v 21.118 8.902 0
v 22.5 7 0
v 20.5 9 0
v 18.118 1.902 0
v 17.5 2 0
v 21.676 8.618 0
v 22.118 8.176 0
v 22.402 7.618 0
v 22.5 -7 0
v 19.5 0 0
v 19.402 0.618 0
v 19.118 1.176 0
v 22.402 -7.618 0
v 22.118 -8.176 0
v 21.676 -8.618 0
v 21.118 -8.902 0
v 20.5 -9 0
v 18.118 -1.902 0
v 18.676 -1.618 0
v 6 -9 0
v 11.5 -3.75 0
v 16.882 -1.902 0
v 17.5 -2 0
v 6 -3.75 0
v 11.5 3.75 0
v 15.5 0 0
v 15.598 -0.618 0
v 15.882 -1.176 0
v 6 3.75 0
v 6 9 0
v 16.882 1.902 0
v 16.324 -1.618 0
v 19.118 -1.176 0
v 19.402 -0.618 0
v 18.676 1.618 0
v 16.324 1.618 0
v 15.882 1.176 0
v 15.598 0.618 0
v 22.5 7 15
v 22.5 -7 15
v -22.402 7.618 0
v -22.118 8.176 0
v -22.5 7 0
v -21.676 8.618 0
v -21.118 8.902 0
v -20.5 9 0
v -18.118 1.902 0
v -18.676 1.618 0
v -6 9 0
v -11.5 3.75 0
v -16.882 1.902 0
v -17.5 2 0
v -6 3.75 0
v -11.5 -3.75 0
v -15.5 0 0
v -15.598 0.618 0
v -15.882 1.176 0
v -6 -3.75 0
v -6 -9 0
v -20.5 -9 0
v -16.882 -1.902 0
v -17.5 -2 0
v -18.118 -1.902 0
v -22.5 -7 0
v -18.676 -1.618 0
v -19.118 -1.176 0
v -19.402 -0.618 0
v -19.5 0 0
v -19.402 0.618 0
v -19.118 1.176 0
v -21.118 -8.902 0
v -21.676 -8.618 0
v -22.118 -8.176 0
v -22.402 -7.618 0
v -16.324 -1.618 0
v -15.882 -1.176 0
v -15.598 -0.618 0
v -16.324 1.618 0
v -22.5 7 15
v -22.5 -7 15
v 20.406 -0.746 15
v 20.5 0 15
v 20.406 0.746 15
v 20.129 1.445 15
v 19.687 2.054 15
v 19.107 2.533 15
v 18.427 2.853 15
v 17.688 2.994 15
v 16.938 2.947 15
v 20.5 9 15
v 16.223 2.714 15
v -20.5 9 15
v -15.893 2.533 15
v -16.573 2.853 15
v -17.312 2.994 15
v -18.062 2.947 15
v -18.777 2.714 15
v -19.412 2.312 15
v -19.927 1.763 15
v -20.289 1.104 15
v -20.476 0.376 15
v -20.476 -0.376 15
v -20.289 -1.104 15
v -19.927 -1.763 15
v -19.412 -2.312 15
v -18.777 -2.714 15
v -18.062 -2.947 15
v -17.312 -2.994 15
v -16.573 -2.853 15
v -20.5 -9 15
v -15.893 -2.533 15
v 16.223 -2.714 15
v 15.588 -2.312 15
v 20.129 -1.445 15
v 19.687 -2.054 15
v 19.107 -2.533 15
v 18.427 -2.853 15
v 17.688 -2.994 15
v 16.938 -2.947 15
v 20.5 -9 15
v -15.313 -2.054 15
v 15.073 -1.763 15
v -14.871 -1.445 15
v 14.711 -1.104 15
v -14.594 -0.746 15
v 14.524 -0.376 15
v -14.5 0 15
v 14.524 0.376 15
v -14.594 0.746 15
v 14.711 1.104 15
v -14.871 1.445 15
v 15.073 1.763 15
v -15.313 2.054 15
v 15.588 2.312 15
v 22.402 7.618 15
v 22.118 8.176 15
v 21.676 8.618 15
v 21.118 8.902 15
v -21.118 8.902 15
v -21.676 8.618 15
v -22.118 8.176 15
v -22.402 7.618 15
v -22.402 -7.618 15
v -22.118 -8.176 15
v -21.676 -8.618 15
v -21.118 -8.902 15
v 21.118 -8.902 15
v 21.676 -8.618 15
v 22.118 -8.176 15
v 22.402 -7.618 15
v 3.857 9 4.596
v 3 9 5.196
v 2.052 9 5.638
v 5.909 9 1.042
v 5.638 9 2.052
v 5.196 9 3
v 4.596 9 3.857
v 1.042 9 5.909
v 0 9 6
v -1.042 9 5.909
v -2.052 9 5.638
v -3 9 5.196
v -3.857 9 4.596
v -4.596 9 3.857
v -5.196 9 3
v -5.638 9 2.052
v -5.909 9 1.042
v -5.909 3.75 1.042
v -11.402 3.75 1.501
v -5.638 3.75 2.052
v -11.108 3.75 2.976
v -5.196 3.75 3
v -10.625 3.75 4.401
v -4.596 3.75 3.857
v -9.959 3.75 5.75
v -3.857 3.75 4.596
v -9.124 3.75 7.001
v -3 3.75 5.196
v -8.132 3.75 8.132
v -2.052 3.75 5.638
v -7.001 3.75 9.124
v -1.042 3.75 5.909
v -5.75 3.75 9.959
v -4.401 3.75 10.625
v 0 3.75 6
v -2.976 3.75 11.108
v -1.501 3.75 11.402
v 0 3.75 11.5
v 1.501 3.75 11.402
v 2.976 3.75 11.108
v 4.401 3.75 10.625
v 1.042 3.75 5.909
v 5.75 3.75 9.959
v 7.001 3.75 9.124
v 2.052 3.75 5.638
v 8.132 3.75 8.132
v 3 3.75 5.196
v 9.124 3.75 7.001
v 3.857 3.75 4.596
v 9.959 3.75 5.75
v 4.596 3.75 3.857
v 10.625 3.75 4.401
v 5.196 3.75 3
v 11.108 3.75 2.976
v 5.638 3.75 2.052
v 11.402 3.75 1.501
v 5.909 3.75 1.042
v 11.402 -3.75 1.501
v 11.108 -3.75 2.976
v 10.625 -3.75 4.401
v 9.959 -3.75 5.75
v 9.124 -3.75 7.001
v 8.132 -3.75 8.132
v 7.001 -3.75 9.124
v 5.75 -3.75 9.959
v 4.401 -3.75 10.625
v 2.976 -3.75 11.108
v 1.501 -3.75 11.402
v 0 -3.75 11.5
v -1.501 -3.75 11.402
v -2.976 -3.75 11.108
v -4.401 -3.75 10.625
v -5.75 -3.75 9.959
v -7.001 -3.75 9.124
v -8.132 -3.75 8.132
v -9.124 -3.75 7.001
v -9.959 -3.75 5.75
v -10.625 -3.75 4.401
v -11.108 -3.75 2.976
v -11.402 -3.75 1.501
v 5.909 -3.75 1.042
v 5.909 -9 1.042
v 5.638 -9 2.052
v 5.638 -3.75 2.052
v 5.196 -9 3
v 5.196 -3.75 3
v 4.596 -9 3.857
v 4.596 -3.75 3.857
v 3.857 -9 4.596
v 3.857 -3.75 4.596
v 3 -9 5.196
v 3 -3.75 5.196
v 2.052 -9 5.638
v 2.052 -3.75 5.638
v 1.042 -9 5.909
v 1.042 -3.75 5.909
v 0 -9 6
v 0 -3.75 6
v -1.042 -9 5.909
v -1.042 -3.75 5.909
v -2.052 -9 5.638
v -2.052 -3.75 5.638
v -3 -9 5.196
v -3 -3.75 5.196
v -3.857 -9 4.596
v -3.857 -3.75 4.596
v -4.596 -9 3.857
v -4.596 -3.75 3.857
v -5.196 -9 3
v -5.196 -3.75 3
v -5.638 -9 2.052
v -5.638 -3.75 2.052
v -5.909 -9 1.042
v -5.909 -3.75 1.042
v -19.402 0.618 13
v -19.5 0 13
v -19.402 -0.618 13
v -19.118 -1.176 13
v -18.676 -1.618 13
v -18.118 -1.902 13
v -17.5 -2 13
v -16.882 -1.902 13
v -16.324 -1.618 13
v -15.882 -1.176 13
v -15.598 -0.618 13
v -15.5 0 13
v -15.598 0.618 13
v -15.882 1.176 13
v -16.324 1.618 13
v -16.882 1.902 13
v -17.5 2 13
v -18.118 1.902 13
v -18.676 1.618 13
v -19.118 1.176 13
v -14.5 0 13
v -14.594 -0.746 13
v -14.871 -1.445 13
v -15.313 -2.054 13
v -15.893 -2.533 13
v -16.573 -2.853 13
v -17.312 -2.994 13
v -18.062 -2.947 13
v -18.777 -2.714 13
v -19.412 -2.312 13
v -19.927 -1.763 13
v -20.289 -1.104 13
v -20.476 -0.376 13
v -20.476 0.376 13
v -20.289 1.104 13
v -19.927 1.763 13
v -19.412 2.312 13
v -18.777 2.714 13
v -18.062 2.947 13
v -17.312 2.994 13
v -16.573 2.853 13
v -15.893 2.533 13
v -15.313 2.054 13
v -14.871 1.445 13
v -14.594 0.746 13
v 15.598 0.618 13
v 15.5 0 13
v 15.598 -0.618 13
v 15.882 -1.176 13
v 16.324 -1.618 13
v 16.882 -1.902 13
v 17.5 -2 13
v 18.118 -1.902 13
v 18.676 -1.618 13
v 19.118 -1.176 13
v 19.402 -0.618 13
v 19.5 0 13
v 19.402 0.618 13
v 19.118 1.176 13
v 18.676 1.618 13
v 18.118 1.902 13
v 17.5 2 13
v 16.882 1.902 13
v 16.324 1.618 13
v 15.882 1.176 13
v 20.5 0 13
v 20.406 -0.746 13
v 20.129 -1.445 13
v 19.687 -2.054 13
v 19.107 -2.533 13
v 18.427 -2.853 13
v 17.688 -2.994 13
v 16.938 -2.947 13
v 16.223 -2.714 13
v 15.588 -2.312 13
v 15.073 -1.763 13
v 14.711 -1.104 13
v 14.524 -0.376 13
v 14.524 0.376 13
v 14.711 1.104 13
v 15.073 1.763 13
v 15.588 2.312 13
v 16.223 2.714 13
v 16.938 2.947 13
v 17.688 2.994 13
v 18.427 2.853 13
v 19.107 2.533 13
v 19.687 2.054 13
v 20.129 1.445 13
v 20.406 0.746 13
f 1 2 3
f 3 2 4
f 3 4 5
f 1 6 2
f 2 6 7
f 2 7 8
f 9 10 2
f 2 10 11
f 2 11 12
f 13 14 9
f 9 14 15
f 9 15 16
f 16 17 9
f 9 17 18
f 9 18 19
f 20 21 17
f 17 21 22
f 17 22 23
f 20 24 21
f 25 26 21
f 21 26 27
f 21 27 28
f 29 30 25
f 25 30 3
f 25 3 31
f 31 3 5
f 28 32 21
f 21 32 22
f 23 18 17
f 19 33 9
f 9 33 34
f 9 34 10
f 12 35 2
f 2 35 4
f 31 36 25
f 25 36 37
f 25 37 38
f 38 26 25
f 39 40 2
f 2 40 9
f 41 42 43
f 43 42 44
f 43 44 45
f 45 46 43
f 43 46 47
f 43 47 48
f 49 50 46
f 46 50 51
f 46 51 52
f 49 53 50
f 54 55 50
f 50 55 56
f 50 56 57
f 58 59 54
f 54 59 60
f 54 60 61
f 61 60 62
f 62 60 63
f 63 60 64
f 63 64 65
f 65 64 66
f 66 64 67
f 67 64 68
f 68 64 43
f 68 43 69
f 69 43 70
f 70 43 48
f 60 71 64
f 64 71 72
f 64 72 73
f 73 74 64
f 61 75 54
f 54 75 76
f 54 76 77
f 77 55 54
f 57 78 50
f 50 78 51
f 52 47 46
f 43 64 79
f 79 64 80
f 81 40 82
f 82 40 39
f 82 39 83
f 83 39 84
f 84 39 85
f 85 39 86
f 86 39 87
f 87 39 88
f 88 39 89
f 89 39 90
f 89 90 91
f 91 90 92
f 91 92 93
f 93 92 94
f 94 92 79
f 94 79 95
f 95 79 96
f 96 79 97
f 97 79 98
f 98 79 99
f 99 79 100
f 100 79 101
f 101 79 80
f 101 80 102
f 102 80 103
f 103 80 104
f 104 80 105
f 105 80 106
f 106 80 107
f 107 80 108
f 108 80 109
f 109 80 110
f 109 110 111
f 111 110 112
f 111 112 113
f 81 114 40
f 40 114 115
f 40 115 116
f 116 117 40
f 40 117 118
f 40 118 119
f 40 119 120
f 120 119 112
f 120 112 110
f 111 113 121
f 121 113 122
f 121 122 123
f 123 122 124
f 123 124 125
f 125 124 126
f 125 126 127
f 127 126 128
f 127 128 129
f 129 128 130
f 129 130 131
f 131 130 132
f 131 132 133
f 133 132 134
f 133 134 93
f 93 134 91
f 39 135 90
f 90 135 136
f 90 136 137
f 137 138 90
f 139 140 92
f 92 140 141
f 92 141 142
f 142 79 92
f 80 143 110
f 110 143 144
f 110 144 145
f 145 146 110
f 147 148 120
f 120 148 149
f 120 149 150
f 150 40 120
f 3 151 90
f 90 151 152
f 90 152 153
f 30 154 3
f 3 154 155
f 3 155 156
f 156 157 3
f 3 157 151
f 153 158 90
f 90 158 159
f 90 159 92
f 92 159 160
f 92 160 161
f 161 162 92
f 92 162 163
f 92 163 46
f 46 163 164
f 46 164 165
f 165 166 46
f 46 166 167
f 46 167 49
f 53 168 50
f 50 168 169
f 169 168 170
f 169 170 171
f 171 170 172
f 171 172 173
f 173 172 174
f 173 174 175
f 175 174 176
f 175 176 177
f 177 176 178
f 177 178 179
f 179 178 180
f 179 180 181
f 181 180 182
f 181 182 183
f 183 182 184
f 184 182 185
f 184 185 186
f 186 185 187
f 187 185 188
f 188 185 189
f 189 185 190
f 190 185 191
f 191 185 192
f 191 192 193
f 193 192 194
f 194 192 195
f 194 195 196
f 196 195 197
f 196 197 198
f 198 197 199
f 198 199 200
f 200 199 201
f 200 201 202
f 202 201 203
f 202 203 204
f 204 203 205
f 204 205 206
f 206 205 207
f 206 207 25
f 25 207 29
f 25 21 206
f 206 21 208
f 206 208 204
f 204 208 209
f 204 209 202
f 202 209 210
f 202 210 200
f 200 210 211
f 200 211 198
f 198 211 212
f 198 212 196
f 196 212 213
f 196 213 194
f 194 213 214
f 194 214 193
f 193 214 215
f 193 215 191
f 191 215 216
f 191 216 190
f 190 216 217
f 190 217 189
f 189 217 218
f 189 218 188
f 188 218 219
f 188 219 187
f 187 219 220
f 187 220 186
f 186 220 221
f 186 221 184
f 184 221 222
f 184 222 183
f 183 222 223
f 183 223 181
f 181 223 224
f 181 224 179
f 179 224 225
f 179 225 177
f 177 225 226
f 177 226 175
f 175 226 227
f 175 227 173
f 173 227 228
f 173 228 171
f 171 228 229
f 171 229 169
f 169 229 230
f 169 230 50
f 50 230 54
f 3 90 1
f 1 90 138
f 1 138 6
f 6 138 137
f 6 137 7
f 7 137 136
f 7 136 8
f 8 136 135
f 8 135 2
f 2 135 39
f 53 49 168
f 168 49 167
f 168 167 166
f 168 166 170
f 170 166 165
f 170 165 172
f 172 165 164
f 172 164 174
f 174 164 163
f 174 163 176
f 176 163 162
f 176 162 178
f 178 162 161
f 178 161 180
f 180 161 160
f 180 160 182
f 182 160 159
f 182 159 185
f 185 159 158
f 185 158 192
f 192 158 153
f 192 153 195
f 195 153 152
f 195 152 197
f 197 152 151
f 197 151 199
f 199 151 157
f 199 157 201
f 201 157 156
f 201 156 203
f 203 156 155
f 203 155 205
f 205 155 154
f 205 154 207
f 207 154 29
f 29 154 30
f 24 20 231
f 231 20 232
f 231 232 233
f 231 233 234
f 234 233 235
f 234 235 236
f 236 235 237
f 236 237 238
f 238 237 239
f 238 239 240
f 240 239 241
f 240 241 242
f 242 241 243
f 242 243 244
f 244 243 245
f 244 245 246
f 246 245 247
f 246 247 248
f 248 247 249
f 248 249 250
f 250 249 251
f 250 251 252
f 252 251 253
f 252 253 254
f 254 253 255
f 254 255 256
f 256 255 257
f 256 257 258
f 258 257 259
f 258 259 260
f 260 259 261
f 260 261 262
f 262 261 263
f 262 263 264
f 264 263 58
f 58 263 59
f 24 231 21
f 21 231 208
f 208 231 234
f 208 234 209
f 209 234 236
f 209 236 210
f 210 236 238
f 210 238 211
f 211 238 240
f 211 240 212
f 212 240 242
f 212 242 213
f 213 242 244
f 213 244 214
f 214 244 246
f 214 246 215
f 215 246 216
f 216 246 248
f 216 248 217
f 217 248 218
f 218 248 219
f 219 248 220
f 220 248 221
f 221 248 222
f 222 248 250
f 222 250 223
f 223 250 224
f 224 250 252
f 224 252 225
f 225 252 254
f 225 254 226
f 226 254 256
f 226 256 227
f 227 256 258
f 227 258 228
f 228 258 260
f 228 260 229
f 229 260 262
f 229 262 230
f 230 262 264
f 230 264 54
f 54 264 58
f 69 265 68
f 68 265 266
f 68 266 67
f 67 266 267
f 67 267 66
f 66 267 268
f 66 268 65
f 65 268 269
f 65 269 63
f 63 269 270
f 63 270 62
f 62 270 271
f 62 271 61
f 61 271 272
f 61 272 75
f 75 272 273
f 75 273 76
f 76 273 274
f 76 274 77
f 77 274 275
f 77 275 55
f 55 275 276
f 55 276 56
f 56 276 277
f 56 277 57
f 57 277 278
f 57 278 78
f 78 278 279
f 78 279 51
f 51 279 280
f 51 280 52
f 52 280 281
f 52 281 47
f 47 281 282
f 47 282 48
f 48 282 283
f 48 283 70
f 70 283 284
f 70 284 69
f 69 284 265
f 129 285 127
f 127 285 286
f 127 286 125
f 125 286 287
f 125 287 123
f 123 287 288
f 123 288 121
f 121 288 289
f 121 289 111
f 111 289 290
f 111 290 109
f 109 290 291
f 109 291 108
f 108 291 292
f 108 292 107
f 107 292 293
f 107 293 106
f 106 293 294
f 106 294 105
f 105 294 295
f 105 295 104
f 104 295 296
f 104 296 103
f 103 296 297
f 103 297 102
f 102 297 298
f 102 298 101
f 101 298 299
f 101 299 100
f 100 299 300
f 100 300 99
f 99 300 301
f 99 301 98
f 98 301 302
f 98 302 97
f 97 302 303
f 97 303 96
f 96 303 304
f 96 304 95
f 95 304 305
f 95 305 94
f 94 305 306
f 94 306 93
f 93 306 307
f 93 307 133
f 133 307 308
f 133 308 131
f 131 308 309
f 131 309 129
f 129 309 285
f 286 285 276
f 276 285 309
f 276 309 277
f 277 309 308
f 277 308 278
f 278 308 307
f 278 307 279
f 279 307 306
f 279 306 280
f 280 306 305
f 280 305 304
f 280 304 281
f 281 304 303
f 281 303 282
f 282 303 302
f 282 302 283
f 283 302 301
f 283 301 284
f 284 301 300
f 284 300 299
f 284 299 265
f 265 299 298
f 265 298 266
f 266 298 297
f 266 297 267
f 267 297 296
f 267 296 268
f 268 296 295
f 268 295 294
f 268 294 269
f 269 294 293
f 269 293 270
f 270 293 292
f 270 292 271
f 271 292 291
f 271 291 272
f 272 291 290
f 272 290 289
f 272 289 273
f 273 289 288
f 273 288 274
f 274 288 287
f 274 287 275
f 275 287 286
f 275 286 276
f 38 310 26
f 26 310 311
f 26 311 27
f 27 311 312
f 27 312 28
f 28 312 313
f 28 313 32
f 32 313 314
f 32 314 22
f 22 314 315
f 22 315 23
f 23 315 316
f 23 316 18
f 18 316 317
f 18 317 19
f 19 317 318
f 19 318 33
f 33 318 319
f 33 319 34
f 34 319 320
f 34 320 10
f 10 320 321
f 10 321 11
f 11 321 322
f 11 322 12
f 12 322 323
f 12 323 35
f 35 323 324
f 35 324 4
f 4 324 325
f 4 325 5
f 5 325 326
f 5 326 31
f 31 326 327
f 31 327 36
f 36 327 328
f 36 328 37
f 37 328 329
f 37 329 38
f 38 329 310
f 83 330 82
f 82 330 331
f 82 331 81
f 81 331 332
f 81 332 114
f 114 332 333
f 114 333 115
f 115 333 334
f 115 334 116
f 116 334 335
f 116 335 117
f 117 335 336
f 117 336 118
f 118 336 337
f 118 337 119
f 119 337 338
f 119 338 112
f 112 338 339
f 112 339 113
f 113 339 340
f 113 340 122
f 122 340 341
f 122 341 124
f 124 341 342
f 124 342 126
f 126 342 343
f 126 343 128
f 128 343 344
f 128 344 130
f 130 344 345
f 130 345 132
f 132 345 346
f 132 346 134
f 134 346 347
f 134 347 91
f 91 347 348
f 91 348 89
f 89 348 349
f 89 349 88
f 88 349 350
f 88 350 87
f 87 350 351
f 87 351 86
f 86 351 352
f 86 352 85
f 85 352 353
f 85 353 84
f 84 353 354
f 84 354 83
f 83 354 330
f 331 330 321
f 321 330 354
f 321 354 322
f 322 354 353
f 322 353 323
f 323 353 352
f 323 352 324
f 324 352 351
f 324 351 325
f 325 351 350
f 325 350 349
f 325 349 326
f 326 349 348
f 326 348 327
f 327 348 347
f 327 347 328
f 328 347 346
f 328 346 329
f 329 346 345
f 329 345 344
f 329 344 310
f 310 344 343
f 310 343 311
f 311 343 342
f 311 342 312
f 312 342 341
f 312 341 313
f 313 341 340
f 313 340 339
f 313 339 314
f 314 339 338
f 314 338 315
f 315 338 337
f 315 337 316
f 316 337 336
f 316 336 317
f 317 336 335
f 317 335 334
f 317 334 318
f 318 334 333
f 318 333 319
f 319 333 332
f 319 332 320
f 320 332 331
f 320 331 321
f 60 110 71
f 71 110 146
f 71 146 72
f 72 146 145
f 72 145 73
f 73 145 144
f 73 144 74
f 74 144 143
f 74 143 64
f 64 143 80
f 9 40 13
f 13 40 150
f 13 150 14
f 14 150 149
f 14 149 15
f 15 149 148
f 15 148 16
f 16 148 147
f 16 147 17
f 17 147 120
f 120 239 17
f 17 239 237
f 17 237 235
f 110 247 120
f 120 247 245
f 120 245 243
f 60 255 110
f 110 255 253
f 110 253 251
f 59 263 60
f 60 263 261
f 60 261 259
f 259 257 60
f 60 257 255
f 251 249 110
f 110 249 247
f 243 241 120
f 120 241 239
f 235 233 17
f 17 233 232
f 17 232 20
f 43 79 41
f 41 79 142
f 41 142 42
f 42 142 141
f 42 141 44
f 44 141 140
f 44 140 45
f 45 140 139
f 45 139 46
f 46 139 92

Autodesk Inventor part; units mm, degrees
ref_plane "YZ Plane" through (0, 0, 0) normal (1, 0, 0) x (0, 1, 0)
ref_plane "XZ Plane" through (0, 0, 0) normal (0, 1, 0) x (-1, 0, 0)
ref_plane "XY Plane" through (0, 0, 0) normal (0, 0, 1) x (1, 0, 0)
sketch "Sketch1" plane through (0, 0, 0) normal (0, 0, 1) x (1, 0, 0)
  point P0 (0, 0)
sketch "Sketch2" plane through (0, 0, 0) normal (0, 0, 1) x (1, 0, 0)
  line L0 (-22.5, 9) -> (22.5, 9)
  line L1 (22.5, 9) -> (22.5, -9)
  line L2 (22.5, -9) -> (-22.5, -9)
  line L3 (-22.5, -9) -> (-22.5, 9)
  line L4 (-22.5, 9) -> (22.5, -9) construction
  line L5 (22.5, 9) -> (-22.5, -9) construction
  point P0 (0, 0)
  dimension "d0" = 45
  dimension "d1" = 18
extrude "Extrusion1" add sketch "Sketch2" along normal blind 15
ref_plane "Work Plane1" through (-22.5, 0, 0) normal (0, 1, 0) x (1, 0, 0)
sketch "Sketch3" plane through (-22.5, 0, 0) normal (0, 1, 0) x (1, 0, 0)
  circle A0 centre (22.5, 0) radius 11.5
  dimension "d4" = 23
extrude "Extrusion2" cut sketch "Sketch3" along normal mid plane 7.5
sketch "Sketch4" plane through (-22.5, 0, 0) normal (0, 1, 0) x (1, 0, 0)
  circle A0 centre (22.5, 0) radius 6
  dimension "d7" = 12
extrude "Extrusion3" cut sketch "Sketch4" along normal mid plane 32.75
sketch "Sketch5" plane through (0, 0, 15) normal (0, 0, 1) x (1, 0, 0)
  line L0 (-22.5, 9) -> (-22.5, -9) projected
  line L1 (-22.5, -9) -> (22.5, -9) projected
  point P0 (0, 0)
  point P1 (-17.5, 0)
  dimension "d10" = 5
  dimension "d11" = 9
hole "Hole1" at (-17.5, 0, 15) direction (0, 0, -1) diameter 4 end through all counterbore diameter 6 counterbore depth 2
sketch "Sketch6" plane through (0, 0, 15) normal (0, 0, 1) x (1, 0, 0)
  line L0 (-22.5, -9) -> (22.5, -9) projected
  line L1 (22.5, -9) -> (22.5, 9) projected
  point P0 (0, 0)
  point P1 (17.5, 0)
  dimension "d19" = 9
  dimension "d20" = 5
hole "Hole2" at (17.5, 0, 15) direction (0, 0, -1) diameter 4 end through all counterbore diameter 6 counterbore depth 2
fillet "Fillet1" radius 2 4 edges at (-22.5, -9, 7.5) (22.5, -9, 7.5) (-22.5, 9, 7.5) (22.5, 9, 7.5)
properties part number "bearing_holder_v2"
